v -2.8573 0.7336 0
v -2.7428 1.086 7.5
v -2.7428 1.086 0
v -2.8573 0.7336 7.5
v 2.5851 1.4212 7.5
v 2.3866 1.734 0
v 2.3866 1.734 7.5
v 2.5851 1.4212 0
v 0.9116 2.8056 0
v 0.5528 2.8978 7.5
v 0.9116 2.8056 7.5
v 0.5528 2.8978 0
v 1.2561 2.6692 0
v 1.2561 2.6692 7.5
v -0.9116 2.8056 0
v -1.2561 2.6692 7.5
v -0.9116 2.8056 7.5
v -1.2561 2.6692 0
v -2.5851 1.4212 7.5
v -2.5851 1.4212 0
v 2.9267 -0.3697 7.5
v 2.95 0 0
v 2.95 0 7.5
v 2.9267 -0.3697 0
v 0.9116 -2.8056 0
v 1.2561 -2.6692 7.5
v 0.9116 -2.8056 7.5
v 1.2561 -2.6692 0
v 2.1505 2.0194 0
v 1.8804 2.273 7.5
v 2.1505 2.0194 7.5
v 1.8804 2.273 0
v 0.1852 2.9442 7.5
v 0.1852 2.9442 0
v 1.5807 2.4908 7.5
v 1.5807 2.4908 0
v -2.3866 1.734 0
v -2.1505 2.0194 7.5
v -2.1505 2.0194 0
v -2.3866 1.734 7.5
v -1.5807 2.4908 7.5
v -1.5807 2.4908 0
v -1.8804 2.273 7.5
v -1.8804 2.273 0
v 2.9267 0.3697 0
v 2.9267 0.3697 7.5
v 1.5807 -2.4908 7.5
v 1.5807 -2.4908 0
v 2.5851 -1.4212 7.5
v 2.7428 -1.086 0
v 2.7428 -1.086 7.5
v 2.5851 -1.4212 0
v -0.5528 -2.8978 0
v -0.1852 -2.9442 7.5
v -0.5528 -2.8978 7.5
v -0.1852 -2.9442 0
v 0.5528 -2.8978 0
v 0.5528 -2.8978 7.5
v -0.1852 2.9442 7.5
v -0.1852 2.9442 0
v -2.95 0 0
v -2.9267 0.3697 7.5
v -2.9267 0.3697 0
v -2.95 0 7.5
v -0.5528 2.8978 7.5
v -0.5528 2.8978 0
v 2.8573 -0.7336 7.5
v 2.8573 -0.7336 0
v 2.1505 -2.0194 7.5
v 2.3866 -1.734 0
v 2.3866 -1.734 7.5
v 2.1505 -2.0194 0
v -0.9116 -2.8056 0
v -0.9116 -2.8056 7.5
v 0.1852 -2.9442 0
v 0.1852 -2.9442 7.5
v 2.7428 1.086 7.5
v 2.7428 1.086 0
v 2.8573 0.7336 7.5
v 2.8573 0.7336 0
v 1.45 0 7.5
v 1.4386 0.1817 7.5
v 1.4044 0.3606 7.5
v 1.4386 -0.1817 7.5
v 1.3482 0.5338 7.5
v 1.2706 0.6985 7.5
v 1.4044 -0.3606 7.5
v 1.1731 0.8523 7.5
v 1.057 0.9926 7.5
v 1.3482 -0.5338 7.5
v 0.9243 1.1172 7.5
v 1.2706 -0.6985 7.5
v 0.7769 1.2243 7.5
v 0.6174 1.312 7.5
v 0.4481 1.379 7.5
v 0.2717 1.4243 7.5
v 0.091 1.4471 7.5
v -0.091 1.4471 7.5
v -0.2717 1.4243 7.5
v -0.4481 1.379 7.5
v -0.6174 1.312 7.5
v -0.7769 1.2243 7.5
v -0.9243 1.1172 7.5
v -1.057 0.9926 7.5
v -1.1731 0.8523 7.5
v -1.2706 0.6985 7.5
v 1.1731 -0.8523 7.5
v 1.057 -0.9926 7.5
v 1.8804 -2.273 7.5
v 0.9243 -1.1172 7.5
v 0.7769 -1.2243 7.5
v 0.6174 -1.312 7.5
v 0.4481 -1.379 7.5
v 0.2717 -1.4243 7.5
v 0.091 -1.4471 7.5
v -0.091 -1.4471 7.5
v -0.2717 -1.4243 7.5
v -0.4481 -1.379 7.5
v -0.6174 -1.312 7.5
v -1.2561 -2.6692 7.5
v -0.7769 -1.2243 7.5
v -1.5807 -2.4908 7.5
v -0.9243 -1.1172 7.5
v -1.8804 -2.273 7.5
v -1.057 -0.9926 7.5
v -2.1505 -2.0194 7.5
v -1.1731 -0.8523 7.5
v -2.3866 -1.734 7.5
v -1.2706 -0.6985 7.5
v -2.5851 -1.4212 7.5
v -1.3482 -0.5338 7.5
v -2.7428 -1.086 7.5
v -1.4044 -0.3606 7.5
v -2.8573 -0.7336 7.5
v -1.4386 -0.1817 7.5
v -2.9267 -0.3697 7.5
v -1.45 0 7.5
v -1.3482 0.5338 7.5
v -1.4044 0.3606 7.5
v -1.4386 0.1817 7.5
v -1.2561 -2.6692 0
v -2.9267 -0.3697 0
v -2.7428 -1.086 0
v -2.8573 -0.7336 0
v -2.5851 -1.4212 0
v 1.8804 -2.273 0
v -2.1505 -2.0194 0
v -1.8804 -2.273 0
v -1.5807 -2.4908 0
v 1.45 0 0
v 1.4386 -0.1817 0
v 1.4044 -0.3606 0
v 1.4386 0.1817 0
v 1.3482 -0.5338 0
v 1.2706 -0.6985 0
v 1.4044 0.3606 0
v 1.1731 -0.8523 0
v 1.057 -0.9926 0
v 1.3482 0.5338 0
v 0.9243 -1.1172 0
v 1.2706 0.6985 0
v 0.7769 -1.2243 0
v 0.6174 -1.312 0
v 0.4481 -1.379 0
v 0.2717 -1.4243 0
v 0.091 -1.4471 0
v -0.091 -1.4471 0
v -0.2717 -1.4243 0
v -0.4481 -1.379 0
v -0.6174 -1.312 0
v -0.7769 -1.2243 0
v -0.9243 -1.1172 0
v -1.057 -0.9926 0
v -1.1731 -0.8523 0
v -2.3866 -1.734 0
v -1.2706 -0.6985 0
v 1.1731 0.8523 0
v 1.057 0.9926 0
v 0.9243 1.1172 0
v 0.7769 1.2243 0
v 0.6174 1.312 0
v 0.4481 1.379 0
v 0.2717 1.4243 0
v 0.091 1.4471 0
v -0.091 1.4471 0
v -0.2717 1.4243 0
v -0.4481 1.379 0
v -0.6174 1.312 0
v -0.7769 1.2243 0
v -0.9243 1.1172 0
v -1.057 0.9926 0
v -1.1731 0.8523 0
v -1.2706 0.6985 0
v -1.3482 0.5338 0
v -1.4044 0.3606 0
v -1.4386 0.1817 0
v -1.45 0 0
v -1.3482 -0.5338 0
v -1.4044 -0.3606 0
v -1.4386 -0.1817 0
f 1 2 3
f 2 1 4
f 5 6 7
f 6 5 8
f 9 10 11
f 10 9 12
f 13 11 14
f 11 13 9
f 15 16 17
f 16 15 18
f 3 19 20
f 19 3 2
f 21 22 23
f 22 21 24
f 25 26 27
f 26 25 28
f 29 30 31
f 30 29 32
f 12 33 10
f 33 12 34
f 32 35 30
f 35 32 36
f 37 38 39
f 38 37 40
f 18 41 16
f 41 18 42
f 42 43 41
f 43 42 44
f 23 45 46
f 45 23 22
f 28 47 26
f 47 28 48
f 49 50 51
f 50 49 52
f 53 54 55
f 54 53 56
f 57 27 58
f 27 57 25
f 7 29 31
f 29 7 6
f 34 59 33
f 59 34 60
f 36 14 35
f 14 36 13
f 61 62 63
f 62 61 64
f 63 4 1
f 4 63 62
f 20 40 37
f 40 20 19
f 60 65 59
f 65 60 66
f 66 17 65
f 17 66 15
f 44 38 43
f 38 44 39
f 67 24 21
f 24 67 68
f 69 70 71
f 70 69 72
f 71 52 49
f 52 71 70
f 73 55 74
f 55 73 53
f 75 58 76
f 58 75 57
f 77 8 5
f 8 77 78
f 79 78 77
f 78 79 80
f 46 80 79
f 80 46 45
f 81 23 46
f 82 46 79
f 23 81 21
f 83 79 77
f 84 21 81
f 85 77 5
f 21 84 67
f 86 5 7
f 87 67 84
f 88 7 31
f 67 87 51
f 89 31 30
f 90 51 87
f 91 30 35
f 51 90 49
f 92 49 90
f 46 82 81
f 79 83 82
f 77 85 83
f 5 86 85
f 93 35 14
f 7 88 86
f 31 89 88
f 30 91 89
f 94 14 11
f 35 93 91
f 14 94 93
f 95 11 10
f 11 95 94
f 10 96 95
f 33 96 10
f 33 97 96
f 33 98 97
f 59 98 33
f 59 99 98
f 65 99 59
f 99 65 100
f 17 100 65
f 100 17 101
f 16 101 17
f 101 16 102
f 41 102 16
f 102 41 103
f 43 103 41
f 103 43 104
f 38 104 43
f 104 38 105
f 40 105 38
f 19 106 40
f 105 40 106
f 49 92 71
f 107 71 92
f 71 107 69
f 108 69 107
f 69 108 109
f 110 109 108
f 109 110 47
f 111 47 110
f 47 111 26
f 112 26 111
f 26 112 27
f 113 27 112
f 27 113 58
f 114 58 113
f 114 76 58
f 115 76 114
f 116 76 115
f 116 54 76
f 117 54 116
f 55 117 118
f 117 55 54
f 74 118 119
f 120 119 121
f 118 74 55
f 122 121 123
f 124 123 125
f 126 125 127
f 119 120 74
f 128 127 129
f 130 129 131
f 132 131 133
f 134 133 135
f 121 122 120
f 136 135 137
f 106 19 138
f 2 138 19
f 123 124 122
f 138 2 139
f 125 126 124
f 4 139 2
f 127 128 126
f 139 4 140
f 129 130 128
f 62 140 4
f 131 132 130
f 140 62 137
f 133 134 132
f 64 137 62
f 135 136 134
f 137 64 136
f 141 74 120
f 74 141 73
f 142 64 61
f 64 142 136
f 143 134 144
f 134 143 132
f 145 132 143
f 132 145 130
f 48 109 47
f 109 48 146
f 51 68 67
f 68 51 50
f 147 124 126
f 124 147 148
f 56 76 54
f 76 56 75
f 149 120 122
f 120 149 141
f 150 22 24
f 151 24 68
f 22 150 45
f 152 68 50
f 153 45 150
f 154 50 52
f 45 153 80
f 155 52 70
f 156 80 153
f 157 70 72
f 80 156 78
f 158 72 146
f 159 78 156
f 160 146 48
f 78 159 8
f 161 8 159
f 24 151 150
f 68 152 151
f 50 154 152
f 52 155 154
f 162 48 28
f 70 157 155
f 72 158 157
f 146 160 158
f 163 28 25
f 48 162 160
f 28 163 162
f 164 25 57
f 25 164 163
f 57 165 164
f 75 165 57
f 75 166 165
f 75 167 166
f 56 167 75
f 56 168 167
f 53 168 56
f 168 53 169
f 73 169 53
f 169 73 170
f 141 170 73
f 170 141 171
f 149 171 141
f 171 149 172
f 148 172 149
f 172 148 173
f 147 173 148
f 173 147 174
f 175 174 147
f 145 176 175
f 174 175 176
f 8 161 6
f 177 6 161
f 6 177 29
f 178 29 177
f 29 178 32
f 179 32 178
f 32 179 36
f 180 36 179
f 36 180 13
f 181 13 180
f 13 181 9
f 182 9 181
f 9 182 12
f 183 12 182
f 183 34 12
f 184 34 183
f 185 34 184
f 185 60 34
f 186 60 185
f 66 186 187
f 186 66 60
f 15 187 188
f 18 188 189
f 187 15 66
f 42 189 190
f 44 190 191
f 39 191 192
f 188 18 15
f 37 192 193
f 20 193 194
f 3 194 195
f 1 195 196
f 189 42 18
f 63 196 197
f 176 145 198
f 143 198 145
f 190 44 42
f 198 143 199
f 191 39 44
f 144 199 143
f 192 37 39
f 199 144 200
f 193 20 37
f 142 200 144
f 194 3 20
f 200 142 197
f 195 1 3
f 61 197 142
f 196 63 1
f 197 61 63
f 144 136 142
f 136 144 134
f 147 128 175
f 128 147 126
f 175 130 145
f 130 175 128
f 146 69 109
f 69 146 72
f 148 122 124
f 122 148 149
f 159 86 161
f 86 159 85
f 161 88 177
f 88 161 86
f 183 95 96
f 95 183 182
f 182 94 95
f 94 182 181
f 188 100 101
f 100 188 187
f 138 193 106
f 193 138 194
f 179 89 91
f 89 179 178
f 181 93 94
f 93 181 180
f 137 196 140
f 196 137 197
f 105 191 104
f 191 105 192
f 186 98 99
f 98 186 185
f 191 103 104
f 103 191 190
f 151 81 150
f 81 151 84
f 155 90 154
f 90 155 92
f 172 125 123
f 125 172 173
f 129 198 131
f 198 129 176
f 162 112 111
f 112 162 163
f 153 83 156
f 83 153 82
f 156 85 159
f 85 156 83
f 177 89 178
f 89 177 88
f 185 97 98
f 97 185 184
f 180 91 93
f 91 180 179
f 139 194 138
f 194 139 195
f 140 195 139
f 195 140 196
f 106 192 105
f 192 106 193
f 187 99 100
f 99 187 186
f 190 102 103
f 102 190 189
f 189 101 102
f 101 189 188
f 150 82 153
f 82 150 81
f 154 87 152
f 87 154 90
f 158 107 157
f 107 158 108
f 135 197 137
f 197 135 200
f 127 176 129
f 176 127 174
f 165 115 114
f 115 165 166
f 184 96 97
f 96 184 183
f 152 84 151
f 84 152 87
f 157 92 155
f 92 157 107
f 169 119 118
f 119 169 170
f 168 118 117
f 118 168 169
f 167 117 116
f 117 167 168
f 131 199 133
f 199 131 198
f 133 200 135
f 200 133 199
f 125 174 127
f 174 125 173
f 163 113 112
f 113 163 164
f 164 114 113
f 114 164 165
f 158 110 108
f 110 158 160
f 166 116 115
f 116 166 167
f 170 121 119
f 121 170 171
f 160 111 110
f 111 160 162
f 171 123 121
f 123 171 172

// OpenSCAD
$fn = 50;

difference() {
    cylinder(r = 2.95, h = 7.5);
    cylinder(r = 1.45, h = 7.5);
}
